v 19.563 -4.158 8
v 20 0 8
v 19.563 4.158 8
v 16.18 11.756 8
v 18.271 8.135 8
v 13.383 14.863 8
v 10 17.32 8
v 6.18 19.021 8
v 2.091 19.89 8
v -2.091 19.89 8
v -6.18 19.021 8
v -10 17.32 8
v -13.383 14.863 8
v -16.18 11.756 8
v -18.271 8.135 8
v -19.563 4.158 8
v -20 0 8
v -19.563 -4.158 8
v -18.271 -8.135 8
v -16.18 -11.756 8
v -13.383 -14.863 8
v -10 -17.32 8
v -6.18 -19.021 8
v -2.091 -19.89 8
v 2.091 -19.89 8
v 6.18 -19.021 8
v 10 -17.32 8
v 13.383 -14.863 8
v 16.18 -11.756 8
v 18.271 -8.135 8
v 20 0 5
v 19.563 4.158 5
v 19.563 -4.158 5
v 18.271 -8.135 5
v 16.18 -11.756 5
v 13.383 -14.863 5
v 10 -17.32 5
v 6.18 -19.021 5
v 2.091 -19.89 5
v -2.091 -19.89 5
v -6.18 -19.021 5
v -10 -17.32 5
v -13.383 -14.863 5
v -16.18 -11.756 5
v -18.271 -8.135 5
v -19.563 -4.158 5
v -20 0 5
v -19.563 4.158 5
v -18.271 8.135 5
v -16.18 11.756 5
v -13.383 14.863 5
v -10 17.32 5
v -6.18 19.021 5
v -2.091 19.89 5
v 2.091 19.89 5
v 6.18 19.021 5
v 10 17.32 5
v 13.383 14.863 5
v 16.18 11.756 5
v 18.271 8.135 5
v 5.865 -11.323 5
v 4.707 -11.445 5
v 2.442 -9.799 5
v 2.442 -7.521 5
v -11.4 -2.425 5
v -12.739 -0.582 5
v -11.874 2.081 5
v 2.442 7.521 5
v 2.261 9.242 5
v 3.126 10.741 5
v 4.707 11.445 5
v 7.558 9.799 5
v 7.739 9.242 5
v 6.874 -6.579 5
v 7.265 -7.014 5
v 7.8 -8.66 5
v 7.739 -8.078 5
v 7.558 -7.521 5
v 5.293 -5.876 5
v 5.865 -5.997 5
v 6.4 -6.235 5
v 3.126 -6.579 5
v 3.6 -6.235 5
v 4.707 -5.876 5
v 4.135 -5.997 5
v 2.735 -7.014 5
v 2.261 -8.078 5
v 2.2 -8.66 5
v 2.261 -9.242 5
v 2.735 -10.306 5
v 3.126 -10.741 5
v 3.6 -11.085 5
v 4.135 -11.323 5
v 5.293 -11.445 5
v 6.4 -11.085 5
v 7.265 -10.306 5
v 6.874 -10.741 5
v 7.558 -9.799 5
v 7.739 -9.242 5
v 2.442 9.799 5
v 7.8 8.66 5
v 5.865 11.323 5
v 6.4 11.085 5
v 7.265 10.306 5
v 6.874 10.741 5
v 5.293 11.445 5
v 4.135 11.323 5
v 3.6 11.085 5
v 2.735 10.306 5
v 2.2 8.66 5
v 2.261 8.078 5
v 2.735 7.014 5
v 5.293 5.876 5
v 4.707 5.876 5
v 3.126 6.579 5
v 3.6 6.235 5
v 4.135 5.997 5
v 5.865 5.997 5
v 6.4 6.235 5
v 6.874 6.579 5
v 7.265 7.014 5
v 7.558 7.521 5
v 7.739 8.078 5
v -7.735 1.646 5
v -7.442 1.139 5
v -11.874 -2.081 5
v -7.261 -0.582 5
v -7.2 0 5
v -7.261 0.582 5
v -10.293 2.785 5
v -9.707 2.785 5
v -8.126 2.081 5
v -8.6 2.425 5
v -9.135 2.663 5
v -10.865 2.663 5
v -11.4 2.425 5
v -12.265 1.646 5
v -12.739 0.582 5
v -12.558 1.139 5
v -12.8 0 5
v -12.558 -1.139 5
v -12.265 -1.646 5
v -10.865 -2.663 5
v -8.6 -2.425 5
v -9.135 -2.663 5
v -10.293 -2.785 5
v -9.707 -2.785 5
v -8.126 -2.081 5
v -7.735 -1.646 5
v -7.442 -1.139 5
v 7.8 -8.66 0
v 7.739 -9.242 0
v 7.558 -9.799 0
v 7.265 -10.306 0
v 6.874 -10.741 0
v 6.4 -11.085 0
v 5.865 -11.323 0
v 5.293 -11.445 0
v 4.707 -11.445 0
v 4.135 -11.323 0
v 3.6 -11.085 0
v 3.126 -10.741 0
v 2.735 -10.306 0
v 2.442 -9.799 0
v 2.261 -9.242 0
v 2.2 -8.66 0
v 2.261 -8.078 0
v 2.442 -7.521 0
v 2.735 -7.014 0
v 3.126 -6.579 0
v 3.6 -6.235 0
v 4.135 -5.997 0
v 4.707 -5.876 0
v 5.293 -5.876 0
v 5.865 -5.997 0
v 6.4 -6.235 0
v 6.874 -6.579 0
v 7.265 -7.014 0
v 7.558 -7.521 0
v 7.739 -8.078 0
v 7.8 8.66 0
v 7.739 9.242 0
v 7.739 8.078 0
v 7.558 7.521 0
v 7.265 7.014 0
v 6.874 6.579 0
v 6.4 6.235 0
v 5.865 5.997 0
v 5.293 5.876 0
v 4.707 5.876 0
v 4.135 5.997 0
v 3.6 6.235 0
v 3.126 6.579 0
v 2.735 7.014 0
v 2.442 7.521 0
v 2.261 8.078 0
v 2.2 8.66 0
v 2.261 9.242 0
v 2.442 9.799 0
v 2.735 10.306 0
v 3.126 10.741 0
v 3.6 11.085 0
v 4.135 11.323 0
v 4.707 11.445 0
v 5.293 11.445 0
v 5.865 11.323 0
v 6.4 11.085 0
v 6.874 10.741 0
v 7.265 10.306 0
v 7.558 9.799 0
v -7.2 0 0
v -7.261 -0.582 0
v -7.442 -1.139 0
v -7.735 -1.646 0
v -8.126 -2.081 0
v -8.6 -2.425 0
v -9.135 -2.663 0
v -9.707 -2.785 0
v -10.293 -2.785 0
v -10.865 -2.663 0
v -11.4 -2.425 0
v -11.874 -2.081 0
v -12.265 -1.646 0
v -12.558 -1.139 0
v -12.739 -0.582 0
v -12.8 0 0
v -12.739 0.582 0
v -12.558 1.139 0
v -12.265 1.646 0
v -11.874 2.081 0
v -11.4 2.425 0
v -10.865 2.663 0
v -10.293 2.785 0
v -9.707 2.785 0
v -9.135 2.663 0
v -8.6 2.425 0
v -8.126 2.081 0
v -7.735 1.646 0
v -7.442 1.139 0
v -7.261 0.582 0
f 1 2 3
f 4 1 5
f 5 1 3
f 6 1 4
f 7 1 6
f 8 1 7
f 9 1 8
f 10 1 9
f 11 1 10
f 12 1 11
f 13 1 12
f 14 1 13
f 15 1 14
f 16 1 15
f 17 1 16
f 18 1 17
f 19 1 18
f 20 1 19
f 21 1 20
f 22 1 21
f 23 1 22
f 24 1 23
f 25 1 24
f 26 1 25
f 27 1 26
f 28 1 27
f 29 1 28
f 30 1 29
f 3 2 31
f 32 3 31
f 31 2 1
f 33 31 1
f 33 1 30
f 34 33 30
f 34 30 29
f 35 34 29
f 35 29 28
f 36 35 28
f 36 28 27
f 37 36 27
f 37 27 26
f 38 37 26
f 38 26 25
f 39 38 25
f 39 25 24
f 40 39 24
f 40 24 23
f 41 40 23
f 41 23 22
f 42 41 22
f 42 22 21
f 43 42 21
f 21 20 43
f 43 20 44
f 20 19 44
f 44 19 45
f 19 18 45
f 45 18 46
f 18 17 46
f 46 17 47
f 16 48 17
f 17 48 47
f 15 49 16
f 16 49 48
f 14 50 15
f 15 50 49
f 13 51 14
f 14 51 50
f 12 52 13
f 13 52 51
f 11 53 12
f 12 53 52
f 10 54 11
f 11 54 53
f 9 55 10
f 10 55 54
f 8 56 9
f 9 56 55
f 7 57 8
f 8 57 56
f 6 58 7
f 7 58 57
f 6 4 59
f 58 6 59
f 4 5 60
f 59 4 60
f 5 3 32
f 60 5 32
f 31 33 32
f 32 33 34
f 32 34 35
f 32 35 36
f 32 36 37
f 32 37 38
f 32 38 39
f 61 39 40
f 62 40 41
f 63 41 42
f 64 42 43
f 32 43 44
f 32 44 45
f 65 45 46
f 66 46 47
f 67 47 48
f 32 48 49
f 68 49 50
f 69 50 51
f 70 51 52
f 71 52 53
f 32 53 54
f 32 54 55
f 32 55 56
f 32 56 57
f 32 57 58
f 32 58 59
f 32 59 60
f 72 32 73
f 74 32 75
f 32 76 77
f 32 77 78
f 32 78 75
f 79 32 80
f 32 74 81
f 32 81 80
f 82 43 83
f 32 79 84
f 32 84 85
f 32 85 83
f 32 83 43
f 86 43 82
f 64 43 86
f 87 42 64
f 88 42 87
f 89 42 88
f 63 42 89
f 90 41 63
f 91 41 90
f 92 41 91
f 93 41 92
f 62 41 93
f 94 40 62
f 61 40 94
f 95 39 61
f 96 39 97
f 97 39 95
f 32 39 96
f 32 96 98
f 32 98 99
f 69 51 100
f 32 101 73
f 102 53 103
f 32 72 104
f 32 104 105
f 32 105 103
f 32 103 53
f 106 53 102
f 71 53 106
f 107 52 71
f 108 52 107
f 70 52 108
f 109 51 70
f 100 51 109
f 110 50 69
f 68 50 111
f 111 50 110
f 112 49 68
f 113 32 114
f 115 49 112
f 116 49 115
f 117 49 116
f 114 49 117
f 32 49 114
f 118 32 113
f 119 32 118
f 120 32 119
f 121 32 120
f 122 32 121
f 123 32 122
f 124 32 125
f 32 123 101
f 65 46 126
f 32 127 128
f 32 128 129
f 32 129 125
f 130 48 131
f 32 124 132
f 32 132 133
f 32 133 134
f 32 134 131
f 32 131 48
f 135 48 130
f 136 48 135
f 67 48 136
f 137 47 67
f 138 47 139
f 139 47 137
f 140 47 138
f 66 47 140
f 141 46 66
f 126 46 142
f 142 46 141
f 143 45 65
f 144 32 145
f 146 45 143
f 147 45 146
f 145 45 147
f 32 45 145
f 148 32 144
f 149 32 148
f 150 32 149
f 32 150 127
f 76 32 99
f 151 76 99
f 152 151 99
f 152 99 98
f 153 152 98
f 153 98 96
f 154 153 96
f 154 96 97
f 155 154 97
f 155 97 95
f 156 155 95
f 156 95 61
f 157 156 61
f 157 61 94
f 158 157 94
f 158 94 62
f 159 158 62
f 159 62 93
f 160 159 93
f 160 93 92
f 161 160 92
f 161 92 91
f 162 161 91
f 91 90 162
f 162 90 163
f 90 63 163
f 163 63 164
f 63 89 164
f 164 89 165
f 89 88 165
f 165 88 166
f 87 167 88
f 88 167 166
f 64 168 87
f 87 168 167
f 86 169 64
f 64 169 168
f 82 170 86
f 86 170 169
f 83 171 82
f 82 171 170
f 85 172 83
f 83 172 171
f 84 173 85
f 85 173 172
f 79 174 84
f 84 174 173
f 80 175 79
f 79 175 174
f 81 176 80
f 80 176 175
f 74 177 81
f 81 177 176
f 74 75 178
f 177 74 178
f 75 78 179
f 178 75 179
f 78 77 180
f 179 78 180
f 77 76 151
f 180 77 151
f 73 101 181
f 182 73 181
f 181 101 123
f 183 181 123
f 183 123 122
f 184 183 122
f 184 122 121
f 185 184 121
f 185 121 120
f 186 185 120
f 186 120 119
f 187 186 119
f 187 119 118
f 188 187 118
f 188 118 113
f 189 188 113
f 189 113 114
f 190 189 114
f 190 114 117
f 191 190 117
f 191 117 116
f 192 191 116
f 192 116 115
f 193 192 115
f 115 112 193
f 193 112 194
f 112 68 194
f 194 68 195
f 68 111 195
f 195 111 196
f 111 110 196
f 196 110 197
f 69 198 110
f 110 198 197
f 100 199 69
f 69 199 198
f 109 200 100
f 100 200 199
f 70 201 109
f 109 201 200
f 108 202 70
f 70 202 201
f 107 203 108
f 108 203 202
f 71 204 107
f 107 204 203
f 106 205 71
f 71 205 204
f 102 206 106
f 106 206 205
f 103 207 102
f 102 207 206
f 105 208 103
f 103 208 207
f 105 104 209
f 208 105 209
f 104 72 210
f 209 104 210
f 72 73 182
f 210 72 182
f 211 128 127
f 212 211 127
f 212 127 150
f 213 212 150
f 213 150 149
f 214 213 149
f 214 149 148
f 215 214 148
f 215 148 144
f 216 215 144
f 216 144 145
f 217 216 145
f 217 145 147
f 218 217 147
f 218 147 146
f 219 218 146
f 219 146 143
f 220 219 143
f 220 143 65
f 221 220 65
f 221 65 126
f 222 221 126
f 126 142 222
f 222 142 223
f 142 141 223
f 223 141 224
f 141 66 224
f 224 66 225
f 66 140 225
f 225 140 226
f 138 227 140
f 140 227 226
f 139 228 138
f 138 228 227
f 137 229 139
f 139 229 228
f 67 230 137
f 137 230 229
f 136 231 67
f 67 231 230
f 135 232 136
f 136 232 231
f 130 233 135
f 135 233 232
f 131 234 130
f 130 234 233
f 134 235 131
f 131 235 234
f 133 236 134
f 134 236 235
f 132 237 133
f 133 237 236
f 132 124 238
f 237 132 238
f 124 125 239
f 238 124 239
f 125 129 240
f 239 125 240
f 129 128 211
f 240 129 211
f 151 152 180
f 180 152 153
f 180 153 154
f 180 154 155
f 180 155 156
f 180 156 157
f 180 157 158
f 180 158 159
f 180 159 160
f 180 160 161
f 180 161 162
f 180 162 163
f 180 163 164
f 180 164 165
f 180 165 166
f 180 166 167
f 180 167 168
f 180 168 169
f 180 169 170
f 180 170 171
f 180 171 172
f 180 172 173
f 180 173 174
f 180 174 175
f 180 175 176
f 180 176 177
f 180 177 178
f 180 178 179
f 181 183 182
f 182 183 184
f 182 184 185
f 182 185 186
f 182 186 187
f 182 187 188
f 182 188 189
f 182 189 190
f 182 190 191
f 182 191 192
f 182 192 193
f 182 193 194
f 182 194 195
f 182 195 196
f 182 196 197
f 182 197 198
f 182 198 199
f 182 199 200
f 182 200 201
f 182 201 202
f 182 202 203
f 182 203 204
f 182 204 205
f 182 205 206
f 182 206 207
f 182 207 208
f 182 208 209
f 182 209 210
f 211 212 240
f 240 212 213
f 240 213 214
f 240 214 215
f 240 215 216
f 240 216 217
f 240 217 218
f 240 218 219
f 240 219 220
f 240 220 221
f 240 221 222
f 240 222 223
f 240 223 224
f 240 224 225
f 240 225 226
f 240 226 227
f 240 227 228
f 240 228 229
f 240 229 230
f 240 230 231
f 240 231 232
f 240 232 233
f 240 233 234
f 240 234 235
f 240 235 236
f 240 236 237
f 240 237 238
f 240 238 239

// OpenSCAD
module male_base() {
cylinder(r=20, h=3);
module male() {
translate([10,0,2]){
	cylinder(r=2.8, h=6, $fs=0.3);
}
}
male();
rotate(120, [0,0,1]){male();}
rotate(240, [0,0,1]){male();}
}

translate([0,0,8]){
	rotate(180, [0,1,0]){
		male_base();
	}
}
